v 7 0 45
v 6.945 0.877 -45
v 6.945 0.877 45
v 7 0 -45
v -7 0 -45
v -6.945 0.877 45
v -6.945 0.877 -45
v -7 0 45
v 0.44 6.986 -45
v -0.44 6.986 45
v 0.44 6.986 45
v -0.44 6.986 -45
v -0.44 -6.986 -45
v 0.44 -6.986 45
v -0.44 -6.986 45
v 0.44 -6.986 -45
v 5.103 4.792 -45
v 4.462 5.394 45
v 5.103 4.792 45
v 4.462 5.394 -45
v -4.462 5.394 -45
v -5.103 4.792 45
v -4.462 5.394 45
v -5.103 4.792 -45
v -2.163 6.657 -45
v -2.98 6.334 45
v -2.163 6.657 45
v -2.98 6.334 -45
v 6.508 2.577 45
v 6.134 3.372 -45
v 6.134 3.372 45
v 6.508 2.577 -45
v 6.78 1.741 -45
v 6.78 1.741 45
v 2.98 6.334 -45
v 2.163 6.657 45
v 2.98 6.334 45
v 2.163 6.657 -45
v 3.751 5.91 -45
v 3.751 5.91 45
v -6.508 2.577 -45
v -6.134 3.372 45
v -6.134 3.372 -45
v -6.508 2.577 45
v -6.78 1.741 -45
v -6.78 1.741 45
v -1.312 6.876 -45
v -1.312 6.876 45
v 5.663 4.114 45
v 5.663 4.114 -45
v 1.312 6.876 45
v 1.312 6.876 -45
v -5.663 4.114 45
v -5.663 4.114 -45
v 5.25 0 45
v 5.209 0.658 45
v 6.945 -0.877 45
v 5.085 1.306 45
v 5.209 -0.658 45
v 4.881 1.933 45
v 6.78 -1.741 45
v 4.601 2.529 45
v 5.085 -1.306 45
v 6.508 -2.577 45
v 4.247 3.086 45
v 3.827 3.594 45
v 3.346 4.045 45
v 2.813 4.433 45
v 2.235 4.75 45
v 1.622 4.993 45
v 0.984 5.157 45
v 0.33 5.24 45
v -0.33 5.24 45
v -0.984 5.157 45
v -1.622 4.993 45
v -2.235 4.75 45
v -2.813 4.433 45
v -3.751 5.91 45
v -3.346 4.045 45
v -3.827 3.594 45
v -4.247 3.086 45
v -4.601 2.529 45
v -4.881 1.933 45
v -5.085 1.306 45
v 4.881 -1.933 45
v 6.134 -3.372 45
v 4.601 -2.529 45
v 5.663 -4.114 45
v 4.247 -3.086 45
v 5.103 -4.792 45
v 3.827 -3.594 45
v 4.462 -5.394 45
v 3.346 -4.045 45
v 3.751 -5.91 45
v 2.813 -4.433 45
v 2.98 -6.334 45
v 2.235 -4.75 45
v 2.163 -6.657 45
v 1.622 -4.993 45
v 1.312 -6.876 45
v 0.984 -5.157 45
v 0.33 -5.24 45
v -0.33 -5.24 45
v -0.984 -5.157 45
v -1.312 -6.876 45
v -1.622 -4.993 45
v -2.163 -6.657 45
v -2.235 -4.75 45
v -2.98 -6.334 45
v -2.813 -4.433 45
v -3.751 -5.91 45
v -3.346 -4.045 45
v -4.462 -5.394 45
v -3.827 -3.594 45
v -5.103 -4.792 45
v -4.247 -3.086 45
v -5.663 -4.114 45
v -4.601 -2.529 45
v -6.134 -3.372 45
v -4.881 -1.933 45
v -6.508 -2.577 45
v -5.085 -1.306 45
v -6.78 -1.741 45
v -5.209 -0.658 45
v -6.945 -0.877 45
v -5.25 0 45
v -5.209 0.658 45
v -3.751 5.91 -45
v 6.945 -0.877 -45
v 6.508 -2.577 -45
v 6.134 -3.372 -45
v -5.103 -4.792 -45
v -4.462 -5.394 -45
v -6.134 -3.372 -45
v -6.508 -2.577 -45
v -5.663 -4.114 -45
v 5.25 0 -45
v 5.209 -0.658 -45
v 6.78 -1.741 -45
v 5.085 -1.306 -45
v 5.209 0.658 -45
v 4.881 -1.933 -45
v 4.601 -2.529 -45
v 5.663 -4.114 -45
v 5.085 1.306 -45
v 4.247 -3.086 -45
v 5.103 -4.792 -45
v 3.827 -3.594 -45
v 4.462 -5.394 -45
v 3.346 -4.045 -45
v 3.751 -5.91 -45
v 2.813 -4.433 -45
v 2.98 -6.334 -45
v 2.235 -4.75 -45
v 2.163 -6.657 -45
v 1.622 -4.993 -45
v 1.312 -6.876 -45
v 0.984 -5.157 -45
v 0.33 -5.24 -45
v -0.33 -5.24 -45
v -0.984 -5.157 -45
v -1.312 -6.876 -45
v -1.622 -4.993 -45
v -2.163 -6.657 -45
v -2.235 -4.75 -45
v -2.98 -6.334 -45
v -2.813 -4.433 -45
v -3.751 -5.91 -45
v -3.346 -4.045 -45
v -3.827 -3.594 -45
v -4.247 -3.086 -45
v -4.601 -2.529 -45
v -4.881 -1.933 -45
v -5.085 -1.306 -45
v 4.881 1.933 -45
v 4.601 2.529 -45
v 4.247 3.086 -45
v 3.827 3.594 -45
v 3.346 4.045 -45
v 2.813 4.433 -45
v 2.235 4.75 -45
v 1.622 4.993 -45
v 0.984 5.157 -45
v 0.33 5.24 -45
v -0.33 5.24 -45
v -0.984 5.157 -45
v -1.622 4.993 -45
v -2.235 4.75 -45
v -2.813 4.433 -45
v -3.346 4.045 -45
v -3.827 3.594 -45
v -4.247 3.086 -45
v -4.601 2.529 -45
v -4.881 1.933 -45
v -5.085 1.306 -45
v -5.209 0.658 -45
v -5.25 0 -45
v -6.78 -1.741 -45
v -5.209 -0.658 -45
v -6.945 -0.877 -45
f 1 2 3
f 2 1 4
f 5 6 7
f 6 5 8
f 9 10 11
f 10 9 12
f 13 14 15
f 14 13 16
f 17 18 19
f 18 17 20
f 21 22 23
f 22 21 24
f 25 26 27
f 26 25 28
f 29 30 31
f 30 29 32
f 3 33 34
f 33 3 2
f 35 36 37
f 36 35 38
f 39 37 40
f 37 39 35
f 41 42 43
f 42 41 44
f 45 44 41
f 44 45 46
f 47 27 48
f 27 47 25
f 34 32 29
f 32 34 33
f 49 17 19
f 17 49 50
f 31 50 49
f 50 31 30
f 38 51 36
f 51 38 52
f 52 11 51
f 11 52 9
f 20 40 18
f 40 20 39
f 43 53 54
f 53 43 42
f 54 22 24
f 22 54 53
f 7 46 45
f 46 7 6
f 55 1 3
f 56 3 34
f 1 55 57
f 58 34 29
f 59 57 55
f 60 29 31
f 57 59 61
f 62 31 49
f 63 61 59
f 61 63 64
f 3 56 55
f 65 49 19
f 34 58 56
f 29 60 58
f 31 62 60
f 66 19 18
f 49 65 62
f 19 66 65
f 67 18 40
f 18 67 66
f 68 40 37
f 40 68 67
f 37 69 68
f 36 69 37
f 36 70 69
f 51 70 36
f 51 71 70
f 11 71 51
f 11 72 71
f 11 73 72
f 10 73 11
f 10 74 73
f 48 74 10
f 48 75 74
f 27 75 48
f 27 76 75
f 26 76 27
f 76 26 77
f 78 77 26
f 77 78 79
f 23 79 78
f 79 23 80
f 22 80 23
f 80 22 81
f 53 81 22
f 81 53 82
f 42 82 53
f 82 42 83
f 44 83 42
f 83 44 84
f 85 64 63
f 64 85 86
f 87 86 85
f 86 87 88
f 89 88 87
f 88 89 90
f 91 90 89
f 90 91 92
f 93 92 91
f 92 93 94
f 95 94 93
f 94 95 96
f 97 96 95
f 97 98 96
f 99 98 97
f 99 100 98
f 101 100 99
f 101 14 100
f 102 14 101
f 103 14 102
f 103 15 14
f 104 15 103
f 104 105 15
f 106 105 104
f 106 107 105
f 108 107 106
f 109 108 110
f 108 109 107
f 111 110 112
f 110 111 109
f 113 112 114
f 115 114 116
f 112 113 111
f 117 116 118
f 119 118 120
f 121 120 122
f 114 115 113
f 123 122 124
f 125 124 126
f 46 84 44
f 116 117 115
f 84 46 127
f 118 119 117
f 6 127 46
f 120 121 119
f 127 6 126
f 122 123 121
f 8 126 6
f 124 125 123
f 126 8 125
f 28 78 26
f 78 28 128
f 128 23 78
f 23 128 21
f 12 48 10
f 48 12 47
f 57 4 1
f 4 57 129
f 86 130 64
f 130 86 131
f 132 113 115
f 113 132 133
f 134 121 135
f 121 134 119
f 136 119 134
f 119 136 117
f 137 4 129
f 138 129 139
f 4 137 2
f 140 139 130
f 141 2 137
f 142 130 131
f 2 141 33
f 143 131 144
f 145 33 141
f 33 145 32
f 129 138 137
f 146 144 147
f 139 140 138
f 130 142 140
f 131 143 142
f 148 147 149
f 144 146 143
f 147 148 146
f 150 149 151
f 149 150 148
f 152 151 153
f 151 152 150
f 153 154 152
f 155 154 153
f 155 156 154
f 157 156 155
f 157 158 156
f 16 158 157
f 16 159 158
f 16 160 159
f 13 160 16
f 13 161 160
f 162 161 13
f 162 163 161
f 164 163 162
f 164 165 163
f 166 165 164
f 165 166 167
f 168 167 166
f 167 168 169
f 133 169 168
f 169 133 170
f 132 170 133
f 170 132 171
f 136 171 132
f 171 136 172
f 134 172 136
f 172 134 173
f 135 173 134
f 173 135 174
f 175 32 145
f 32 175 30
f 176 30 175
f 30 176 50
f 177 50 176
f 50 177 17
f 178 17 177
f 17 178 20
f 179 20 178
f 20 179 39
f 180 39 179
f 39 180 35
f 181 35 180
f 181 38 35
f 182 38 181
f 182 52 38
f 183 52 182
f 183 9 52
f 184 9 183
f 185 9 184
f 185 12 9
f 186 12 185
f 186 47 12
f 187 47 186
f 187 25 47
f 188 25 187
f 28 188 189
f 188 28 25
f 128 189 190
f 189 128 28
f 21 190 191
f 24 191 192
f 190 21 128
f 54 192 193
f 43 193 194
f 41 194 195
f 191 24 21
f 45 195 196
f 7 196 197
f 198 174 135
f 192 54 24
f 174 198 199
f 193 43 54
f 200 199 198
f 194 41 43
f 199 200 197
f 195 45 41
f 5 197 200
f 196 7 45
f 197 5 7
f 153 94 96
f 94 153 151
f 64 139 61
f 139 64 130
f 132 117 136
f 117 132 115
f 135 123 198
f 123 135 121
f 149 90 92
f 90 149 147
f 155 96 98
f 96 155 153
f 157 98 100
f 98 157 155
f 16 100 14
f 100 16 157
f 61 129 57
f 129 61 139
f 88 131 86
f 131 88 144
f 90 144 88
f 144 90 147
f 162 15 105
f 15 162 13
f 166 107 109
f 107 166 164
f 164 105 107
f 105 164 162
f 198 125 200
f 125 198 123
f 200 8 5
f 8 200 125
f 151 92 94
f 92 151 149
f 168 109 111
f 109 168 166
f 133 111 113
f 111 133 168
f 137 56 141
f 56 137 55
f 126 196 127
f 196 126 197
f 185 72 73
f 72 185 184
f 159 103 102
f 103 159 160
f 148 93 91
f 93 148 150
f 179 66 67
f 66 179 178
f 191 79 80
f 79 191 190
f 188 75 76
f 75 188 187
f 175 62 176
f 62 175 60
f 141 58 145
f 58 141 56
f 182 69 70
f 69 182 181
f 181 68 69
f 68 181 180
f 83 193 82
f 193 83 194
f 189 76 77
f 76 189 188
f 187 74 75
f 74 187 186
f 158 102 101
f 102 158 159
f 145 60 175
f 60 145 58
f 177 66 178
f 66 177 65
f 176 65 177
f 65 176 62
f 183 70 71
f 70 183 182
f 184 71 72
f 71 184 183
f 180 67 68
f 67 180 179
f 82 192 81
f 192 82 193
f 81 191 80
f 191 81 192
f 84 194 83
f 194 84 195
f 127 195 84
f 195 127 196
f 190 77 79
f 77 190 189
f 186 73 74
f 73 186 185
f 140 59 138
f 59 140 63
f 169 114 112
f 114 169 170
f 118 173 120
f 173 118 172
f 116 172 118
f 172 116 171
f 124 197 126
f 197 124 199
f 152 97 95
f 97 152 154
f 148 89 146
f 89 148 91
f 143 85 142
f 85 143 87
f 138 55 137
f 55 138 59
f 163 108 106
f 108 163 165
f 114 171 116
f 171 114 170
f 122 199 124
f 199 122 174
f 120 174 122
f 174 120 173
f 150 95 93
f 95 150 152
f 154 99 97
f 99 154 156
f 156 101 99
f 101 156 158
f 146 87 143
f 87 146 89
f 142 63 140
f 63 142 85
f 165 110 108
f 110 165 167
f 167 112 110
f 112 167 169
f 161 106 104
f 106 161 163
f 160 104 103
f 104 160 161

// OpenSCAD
$fn = 50;


difference() {
	union() {
		translate(v = [0, 0, -45.0000000000]) {
			cylinder(h = 90, r = 7.0000000000);
		}
	}
	union() {
		translate(v = [0, 0, -100.0000000000]) {
			cylinder(h = 200, r = 5.2500000000);
		}
	}
}
